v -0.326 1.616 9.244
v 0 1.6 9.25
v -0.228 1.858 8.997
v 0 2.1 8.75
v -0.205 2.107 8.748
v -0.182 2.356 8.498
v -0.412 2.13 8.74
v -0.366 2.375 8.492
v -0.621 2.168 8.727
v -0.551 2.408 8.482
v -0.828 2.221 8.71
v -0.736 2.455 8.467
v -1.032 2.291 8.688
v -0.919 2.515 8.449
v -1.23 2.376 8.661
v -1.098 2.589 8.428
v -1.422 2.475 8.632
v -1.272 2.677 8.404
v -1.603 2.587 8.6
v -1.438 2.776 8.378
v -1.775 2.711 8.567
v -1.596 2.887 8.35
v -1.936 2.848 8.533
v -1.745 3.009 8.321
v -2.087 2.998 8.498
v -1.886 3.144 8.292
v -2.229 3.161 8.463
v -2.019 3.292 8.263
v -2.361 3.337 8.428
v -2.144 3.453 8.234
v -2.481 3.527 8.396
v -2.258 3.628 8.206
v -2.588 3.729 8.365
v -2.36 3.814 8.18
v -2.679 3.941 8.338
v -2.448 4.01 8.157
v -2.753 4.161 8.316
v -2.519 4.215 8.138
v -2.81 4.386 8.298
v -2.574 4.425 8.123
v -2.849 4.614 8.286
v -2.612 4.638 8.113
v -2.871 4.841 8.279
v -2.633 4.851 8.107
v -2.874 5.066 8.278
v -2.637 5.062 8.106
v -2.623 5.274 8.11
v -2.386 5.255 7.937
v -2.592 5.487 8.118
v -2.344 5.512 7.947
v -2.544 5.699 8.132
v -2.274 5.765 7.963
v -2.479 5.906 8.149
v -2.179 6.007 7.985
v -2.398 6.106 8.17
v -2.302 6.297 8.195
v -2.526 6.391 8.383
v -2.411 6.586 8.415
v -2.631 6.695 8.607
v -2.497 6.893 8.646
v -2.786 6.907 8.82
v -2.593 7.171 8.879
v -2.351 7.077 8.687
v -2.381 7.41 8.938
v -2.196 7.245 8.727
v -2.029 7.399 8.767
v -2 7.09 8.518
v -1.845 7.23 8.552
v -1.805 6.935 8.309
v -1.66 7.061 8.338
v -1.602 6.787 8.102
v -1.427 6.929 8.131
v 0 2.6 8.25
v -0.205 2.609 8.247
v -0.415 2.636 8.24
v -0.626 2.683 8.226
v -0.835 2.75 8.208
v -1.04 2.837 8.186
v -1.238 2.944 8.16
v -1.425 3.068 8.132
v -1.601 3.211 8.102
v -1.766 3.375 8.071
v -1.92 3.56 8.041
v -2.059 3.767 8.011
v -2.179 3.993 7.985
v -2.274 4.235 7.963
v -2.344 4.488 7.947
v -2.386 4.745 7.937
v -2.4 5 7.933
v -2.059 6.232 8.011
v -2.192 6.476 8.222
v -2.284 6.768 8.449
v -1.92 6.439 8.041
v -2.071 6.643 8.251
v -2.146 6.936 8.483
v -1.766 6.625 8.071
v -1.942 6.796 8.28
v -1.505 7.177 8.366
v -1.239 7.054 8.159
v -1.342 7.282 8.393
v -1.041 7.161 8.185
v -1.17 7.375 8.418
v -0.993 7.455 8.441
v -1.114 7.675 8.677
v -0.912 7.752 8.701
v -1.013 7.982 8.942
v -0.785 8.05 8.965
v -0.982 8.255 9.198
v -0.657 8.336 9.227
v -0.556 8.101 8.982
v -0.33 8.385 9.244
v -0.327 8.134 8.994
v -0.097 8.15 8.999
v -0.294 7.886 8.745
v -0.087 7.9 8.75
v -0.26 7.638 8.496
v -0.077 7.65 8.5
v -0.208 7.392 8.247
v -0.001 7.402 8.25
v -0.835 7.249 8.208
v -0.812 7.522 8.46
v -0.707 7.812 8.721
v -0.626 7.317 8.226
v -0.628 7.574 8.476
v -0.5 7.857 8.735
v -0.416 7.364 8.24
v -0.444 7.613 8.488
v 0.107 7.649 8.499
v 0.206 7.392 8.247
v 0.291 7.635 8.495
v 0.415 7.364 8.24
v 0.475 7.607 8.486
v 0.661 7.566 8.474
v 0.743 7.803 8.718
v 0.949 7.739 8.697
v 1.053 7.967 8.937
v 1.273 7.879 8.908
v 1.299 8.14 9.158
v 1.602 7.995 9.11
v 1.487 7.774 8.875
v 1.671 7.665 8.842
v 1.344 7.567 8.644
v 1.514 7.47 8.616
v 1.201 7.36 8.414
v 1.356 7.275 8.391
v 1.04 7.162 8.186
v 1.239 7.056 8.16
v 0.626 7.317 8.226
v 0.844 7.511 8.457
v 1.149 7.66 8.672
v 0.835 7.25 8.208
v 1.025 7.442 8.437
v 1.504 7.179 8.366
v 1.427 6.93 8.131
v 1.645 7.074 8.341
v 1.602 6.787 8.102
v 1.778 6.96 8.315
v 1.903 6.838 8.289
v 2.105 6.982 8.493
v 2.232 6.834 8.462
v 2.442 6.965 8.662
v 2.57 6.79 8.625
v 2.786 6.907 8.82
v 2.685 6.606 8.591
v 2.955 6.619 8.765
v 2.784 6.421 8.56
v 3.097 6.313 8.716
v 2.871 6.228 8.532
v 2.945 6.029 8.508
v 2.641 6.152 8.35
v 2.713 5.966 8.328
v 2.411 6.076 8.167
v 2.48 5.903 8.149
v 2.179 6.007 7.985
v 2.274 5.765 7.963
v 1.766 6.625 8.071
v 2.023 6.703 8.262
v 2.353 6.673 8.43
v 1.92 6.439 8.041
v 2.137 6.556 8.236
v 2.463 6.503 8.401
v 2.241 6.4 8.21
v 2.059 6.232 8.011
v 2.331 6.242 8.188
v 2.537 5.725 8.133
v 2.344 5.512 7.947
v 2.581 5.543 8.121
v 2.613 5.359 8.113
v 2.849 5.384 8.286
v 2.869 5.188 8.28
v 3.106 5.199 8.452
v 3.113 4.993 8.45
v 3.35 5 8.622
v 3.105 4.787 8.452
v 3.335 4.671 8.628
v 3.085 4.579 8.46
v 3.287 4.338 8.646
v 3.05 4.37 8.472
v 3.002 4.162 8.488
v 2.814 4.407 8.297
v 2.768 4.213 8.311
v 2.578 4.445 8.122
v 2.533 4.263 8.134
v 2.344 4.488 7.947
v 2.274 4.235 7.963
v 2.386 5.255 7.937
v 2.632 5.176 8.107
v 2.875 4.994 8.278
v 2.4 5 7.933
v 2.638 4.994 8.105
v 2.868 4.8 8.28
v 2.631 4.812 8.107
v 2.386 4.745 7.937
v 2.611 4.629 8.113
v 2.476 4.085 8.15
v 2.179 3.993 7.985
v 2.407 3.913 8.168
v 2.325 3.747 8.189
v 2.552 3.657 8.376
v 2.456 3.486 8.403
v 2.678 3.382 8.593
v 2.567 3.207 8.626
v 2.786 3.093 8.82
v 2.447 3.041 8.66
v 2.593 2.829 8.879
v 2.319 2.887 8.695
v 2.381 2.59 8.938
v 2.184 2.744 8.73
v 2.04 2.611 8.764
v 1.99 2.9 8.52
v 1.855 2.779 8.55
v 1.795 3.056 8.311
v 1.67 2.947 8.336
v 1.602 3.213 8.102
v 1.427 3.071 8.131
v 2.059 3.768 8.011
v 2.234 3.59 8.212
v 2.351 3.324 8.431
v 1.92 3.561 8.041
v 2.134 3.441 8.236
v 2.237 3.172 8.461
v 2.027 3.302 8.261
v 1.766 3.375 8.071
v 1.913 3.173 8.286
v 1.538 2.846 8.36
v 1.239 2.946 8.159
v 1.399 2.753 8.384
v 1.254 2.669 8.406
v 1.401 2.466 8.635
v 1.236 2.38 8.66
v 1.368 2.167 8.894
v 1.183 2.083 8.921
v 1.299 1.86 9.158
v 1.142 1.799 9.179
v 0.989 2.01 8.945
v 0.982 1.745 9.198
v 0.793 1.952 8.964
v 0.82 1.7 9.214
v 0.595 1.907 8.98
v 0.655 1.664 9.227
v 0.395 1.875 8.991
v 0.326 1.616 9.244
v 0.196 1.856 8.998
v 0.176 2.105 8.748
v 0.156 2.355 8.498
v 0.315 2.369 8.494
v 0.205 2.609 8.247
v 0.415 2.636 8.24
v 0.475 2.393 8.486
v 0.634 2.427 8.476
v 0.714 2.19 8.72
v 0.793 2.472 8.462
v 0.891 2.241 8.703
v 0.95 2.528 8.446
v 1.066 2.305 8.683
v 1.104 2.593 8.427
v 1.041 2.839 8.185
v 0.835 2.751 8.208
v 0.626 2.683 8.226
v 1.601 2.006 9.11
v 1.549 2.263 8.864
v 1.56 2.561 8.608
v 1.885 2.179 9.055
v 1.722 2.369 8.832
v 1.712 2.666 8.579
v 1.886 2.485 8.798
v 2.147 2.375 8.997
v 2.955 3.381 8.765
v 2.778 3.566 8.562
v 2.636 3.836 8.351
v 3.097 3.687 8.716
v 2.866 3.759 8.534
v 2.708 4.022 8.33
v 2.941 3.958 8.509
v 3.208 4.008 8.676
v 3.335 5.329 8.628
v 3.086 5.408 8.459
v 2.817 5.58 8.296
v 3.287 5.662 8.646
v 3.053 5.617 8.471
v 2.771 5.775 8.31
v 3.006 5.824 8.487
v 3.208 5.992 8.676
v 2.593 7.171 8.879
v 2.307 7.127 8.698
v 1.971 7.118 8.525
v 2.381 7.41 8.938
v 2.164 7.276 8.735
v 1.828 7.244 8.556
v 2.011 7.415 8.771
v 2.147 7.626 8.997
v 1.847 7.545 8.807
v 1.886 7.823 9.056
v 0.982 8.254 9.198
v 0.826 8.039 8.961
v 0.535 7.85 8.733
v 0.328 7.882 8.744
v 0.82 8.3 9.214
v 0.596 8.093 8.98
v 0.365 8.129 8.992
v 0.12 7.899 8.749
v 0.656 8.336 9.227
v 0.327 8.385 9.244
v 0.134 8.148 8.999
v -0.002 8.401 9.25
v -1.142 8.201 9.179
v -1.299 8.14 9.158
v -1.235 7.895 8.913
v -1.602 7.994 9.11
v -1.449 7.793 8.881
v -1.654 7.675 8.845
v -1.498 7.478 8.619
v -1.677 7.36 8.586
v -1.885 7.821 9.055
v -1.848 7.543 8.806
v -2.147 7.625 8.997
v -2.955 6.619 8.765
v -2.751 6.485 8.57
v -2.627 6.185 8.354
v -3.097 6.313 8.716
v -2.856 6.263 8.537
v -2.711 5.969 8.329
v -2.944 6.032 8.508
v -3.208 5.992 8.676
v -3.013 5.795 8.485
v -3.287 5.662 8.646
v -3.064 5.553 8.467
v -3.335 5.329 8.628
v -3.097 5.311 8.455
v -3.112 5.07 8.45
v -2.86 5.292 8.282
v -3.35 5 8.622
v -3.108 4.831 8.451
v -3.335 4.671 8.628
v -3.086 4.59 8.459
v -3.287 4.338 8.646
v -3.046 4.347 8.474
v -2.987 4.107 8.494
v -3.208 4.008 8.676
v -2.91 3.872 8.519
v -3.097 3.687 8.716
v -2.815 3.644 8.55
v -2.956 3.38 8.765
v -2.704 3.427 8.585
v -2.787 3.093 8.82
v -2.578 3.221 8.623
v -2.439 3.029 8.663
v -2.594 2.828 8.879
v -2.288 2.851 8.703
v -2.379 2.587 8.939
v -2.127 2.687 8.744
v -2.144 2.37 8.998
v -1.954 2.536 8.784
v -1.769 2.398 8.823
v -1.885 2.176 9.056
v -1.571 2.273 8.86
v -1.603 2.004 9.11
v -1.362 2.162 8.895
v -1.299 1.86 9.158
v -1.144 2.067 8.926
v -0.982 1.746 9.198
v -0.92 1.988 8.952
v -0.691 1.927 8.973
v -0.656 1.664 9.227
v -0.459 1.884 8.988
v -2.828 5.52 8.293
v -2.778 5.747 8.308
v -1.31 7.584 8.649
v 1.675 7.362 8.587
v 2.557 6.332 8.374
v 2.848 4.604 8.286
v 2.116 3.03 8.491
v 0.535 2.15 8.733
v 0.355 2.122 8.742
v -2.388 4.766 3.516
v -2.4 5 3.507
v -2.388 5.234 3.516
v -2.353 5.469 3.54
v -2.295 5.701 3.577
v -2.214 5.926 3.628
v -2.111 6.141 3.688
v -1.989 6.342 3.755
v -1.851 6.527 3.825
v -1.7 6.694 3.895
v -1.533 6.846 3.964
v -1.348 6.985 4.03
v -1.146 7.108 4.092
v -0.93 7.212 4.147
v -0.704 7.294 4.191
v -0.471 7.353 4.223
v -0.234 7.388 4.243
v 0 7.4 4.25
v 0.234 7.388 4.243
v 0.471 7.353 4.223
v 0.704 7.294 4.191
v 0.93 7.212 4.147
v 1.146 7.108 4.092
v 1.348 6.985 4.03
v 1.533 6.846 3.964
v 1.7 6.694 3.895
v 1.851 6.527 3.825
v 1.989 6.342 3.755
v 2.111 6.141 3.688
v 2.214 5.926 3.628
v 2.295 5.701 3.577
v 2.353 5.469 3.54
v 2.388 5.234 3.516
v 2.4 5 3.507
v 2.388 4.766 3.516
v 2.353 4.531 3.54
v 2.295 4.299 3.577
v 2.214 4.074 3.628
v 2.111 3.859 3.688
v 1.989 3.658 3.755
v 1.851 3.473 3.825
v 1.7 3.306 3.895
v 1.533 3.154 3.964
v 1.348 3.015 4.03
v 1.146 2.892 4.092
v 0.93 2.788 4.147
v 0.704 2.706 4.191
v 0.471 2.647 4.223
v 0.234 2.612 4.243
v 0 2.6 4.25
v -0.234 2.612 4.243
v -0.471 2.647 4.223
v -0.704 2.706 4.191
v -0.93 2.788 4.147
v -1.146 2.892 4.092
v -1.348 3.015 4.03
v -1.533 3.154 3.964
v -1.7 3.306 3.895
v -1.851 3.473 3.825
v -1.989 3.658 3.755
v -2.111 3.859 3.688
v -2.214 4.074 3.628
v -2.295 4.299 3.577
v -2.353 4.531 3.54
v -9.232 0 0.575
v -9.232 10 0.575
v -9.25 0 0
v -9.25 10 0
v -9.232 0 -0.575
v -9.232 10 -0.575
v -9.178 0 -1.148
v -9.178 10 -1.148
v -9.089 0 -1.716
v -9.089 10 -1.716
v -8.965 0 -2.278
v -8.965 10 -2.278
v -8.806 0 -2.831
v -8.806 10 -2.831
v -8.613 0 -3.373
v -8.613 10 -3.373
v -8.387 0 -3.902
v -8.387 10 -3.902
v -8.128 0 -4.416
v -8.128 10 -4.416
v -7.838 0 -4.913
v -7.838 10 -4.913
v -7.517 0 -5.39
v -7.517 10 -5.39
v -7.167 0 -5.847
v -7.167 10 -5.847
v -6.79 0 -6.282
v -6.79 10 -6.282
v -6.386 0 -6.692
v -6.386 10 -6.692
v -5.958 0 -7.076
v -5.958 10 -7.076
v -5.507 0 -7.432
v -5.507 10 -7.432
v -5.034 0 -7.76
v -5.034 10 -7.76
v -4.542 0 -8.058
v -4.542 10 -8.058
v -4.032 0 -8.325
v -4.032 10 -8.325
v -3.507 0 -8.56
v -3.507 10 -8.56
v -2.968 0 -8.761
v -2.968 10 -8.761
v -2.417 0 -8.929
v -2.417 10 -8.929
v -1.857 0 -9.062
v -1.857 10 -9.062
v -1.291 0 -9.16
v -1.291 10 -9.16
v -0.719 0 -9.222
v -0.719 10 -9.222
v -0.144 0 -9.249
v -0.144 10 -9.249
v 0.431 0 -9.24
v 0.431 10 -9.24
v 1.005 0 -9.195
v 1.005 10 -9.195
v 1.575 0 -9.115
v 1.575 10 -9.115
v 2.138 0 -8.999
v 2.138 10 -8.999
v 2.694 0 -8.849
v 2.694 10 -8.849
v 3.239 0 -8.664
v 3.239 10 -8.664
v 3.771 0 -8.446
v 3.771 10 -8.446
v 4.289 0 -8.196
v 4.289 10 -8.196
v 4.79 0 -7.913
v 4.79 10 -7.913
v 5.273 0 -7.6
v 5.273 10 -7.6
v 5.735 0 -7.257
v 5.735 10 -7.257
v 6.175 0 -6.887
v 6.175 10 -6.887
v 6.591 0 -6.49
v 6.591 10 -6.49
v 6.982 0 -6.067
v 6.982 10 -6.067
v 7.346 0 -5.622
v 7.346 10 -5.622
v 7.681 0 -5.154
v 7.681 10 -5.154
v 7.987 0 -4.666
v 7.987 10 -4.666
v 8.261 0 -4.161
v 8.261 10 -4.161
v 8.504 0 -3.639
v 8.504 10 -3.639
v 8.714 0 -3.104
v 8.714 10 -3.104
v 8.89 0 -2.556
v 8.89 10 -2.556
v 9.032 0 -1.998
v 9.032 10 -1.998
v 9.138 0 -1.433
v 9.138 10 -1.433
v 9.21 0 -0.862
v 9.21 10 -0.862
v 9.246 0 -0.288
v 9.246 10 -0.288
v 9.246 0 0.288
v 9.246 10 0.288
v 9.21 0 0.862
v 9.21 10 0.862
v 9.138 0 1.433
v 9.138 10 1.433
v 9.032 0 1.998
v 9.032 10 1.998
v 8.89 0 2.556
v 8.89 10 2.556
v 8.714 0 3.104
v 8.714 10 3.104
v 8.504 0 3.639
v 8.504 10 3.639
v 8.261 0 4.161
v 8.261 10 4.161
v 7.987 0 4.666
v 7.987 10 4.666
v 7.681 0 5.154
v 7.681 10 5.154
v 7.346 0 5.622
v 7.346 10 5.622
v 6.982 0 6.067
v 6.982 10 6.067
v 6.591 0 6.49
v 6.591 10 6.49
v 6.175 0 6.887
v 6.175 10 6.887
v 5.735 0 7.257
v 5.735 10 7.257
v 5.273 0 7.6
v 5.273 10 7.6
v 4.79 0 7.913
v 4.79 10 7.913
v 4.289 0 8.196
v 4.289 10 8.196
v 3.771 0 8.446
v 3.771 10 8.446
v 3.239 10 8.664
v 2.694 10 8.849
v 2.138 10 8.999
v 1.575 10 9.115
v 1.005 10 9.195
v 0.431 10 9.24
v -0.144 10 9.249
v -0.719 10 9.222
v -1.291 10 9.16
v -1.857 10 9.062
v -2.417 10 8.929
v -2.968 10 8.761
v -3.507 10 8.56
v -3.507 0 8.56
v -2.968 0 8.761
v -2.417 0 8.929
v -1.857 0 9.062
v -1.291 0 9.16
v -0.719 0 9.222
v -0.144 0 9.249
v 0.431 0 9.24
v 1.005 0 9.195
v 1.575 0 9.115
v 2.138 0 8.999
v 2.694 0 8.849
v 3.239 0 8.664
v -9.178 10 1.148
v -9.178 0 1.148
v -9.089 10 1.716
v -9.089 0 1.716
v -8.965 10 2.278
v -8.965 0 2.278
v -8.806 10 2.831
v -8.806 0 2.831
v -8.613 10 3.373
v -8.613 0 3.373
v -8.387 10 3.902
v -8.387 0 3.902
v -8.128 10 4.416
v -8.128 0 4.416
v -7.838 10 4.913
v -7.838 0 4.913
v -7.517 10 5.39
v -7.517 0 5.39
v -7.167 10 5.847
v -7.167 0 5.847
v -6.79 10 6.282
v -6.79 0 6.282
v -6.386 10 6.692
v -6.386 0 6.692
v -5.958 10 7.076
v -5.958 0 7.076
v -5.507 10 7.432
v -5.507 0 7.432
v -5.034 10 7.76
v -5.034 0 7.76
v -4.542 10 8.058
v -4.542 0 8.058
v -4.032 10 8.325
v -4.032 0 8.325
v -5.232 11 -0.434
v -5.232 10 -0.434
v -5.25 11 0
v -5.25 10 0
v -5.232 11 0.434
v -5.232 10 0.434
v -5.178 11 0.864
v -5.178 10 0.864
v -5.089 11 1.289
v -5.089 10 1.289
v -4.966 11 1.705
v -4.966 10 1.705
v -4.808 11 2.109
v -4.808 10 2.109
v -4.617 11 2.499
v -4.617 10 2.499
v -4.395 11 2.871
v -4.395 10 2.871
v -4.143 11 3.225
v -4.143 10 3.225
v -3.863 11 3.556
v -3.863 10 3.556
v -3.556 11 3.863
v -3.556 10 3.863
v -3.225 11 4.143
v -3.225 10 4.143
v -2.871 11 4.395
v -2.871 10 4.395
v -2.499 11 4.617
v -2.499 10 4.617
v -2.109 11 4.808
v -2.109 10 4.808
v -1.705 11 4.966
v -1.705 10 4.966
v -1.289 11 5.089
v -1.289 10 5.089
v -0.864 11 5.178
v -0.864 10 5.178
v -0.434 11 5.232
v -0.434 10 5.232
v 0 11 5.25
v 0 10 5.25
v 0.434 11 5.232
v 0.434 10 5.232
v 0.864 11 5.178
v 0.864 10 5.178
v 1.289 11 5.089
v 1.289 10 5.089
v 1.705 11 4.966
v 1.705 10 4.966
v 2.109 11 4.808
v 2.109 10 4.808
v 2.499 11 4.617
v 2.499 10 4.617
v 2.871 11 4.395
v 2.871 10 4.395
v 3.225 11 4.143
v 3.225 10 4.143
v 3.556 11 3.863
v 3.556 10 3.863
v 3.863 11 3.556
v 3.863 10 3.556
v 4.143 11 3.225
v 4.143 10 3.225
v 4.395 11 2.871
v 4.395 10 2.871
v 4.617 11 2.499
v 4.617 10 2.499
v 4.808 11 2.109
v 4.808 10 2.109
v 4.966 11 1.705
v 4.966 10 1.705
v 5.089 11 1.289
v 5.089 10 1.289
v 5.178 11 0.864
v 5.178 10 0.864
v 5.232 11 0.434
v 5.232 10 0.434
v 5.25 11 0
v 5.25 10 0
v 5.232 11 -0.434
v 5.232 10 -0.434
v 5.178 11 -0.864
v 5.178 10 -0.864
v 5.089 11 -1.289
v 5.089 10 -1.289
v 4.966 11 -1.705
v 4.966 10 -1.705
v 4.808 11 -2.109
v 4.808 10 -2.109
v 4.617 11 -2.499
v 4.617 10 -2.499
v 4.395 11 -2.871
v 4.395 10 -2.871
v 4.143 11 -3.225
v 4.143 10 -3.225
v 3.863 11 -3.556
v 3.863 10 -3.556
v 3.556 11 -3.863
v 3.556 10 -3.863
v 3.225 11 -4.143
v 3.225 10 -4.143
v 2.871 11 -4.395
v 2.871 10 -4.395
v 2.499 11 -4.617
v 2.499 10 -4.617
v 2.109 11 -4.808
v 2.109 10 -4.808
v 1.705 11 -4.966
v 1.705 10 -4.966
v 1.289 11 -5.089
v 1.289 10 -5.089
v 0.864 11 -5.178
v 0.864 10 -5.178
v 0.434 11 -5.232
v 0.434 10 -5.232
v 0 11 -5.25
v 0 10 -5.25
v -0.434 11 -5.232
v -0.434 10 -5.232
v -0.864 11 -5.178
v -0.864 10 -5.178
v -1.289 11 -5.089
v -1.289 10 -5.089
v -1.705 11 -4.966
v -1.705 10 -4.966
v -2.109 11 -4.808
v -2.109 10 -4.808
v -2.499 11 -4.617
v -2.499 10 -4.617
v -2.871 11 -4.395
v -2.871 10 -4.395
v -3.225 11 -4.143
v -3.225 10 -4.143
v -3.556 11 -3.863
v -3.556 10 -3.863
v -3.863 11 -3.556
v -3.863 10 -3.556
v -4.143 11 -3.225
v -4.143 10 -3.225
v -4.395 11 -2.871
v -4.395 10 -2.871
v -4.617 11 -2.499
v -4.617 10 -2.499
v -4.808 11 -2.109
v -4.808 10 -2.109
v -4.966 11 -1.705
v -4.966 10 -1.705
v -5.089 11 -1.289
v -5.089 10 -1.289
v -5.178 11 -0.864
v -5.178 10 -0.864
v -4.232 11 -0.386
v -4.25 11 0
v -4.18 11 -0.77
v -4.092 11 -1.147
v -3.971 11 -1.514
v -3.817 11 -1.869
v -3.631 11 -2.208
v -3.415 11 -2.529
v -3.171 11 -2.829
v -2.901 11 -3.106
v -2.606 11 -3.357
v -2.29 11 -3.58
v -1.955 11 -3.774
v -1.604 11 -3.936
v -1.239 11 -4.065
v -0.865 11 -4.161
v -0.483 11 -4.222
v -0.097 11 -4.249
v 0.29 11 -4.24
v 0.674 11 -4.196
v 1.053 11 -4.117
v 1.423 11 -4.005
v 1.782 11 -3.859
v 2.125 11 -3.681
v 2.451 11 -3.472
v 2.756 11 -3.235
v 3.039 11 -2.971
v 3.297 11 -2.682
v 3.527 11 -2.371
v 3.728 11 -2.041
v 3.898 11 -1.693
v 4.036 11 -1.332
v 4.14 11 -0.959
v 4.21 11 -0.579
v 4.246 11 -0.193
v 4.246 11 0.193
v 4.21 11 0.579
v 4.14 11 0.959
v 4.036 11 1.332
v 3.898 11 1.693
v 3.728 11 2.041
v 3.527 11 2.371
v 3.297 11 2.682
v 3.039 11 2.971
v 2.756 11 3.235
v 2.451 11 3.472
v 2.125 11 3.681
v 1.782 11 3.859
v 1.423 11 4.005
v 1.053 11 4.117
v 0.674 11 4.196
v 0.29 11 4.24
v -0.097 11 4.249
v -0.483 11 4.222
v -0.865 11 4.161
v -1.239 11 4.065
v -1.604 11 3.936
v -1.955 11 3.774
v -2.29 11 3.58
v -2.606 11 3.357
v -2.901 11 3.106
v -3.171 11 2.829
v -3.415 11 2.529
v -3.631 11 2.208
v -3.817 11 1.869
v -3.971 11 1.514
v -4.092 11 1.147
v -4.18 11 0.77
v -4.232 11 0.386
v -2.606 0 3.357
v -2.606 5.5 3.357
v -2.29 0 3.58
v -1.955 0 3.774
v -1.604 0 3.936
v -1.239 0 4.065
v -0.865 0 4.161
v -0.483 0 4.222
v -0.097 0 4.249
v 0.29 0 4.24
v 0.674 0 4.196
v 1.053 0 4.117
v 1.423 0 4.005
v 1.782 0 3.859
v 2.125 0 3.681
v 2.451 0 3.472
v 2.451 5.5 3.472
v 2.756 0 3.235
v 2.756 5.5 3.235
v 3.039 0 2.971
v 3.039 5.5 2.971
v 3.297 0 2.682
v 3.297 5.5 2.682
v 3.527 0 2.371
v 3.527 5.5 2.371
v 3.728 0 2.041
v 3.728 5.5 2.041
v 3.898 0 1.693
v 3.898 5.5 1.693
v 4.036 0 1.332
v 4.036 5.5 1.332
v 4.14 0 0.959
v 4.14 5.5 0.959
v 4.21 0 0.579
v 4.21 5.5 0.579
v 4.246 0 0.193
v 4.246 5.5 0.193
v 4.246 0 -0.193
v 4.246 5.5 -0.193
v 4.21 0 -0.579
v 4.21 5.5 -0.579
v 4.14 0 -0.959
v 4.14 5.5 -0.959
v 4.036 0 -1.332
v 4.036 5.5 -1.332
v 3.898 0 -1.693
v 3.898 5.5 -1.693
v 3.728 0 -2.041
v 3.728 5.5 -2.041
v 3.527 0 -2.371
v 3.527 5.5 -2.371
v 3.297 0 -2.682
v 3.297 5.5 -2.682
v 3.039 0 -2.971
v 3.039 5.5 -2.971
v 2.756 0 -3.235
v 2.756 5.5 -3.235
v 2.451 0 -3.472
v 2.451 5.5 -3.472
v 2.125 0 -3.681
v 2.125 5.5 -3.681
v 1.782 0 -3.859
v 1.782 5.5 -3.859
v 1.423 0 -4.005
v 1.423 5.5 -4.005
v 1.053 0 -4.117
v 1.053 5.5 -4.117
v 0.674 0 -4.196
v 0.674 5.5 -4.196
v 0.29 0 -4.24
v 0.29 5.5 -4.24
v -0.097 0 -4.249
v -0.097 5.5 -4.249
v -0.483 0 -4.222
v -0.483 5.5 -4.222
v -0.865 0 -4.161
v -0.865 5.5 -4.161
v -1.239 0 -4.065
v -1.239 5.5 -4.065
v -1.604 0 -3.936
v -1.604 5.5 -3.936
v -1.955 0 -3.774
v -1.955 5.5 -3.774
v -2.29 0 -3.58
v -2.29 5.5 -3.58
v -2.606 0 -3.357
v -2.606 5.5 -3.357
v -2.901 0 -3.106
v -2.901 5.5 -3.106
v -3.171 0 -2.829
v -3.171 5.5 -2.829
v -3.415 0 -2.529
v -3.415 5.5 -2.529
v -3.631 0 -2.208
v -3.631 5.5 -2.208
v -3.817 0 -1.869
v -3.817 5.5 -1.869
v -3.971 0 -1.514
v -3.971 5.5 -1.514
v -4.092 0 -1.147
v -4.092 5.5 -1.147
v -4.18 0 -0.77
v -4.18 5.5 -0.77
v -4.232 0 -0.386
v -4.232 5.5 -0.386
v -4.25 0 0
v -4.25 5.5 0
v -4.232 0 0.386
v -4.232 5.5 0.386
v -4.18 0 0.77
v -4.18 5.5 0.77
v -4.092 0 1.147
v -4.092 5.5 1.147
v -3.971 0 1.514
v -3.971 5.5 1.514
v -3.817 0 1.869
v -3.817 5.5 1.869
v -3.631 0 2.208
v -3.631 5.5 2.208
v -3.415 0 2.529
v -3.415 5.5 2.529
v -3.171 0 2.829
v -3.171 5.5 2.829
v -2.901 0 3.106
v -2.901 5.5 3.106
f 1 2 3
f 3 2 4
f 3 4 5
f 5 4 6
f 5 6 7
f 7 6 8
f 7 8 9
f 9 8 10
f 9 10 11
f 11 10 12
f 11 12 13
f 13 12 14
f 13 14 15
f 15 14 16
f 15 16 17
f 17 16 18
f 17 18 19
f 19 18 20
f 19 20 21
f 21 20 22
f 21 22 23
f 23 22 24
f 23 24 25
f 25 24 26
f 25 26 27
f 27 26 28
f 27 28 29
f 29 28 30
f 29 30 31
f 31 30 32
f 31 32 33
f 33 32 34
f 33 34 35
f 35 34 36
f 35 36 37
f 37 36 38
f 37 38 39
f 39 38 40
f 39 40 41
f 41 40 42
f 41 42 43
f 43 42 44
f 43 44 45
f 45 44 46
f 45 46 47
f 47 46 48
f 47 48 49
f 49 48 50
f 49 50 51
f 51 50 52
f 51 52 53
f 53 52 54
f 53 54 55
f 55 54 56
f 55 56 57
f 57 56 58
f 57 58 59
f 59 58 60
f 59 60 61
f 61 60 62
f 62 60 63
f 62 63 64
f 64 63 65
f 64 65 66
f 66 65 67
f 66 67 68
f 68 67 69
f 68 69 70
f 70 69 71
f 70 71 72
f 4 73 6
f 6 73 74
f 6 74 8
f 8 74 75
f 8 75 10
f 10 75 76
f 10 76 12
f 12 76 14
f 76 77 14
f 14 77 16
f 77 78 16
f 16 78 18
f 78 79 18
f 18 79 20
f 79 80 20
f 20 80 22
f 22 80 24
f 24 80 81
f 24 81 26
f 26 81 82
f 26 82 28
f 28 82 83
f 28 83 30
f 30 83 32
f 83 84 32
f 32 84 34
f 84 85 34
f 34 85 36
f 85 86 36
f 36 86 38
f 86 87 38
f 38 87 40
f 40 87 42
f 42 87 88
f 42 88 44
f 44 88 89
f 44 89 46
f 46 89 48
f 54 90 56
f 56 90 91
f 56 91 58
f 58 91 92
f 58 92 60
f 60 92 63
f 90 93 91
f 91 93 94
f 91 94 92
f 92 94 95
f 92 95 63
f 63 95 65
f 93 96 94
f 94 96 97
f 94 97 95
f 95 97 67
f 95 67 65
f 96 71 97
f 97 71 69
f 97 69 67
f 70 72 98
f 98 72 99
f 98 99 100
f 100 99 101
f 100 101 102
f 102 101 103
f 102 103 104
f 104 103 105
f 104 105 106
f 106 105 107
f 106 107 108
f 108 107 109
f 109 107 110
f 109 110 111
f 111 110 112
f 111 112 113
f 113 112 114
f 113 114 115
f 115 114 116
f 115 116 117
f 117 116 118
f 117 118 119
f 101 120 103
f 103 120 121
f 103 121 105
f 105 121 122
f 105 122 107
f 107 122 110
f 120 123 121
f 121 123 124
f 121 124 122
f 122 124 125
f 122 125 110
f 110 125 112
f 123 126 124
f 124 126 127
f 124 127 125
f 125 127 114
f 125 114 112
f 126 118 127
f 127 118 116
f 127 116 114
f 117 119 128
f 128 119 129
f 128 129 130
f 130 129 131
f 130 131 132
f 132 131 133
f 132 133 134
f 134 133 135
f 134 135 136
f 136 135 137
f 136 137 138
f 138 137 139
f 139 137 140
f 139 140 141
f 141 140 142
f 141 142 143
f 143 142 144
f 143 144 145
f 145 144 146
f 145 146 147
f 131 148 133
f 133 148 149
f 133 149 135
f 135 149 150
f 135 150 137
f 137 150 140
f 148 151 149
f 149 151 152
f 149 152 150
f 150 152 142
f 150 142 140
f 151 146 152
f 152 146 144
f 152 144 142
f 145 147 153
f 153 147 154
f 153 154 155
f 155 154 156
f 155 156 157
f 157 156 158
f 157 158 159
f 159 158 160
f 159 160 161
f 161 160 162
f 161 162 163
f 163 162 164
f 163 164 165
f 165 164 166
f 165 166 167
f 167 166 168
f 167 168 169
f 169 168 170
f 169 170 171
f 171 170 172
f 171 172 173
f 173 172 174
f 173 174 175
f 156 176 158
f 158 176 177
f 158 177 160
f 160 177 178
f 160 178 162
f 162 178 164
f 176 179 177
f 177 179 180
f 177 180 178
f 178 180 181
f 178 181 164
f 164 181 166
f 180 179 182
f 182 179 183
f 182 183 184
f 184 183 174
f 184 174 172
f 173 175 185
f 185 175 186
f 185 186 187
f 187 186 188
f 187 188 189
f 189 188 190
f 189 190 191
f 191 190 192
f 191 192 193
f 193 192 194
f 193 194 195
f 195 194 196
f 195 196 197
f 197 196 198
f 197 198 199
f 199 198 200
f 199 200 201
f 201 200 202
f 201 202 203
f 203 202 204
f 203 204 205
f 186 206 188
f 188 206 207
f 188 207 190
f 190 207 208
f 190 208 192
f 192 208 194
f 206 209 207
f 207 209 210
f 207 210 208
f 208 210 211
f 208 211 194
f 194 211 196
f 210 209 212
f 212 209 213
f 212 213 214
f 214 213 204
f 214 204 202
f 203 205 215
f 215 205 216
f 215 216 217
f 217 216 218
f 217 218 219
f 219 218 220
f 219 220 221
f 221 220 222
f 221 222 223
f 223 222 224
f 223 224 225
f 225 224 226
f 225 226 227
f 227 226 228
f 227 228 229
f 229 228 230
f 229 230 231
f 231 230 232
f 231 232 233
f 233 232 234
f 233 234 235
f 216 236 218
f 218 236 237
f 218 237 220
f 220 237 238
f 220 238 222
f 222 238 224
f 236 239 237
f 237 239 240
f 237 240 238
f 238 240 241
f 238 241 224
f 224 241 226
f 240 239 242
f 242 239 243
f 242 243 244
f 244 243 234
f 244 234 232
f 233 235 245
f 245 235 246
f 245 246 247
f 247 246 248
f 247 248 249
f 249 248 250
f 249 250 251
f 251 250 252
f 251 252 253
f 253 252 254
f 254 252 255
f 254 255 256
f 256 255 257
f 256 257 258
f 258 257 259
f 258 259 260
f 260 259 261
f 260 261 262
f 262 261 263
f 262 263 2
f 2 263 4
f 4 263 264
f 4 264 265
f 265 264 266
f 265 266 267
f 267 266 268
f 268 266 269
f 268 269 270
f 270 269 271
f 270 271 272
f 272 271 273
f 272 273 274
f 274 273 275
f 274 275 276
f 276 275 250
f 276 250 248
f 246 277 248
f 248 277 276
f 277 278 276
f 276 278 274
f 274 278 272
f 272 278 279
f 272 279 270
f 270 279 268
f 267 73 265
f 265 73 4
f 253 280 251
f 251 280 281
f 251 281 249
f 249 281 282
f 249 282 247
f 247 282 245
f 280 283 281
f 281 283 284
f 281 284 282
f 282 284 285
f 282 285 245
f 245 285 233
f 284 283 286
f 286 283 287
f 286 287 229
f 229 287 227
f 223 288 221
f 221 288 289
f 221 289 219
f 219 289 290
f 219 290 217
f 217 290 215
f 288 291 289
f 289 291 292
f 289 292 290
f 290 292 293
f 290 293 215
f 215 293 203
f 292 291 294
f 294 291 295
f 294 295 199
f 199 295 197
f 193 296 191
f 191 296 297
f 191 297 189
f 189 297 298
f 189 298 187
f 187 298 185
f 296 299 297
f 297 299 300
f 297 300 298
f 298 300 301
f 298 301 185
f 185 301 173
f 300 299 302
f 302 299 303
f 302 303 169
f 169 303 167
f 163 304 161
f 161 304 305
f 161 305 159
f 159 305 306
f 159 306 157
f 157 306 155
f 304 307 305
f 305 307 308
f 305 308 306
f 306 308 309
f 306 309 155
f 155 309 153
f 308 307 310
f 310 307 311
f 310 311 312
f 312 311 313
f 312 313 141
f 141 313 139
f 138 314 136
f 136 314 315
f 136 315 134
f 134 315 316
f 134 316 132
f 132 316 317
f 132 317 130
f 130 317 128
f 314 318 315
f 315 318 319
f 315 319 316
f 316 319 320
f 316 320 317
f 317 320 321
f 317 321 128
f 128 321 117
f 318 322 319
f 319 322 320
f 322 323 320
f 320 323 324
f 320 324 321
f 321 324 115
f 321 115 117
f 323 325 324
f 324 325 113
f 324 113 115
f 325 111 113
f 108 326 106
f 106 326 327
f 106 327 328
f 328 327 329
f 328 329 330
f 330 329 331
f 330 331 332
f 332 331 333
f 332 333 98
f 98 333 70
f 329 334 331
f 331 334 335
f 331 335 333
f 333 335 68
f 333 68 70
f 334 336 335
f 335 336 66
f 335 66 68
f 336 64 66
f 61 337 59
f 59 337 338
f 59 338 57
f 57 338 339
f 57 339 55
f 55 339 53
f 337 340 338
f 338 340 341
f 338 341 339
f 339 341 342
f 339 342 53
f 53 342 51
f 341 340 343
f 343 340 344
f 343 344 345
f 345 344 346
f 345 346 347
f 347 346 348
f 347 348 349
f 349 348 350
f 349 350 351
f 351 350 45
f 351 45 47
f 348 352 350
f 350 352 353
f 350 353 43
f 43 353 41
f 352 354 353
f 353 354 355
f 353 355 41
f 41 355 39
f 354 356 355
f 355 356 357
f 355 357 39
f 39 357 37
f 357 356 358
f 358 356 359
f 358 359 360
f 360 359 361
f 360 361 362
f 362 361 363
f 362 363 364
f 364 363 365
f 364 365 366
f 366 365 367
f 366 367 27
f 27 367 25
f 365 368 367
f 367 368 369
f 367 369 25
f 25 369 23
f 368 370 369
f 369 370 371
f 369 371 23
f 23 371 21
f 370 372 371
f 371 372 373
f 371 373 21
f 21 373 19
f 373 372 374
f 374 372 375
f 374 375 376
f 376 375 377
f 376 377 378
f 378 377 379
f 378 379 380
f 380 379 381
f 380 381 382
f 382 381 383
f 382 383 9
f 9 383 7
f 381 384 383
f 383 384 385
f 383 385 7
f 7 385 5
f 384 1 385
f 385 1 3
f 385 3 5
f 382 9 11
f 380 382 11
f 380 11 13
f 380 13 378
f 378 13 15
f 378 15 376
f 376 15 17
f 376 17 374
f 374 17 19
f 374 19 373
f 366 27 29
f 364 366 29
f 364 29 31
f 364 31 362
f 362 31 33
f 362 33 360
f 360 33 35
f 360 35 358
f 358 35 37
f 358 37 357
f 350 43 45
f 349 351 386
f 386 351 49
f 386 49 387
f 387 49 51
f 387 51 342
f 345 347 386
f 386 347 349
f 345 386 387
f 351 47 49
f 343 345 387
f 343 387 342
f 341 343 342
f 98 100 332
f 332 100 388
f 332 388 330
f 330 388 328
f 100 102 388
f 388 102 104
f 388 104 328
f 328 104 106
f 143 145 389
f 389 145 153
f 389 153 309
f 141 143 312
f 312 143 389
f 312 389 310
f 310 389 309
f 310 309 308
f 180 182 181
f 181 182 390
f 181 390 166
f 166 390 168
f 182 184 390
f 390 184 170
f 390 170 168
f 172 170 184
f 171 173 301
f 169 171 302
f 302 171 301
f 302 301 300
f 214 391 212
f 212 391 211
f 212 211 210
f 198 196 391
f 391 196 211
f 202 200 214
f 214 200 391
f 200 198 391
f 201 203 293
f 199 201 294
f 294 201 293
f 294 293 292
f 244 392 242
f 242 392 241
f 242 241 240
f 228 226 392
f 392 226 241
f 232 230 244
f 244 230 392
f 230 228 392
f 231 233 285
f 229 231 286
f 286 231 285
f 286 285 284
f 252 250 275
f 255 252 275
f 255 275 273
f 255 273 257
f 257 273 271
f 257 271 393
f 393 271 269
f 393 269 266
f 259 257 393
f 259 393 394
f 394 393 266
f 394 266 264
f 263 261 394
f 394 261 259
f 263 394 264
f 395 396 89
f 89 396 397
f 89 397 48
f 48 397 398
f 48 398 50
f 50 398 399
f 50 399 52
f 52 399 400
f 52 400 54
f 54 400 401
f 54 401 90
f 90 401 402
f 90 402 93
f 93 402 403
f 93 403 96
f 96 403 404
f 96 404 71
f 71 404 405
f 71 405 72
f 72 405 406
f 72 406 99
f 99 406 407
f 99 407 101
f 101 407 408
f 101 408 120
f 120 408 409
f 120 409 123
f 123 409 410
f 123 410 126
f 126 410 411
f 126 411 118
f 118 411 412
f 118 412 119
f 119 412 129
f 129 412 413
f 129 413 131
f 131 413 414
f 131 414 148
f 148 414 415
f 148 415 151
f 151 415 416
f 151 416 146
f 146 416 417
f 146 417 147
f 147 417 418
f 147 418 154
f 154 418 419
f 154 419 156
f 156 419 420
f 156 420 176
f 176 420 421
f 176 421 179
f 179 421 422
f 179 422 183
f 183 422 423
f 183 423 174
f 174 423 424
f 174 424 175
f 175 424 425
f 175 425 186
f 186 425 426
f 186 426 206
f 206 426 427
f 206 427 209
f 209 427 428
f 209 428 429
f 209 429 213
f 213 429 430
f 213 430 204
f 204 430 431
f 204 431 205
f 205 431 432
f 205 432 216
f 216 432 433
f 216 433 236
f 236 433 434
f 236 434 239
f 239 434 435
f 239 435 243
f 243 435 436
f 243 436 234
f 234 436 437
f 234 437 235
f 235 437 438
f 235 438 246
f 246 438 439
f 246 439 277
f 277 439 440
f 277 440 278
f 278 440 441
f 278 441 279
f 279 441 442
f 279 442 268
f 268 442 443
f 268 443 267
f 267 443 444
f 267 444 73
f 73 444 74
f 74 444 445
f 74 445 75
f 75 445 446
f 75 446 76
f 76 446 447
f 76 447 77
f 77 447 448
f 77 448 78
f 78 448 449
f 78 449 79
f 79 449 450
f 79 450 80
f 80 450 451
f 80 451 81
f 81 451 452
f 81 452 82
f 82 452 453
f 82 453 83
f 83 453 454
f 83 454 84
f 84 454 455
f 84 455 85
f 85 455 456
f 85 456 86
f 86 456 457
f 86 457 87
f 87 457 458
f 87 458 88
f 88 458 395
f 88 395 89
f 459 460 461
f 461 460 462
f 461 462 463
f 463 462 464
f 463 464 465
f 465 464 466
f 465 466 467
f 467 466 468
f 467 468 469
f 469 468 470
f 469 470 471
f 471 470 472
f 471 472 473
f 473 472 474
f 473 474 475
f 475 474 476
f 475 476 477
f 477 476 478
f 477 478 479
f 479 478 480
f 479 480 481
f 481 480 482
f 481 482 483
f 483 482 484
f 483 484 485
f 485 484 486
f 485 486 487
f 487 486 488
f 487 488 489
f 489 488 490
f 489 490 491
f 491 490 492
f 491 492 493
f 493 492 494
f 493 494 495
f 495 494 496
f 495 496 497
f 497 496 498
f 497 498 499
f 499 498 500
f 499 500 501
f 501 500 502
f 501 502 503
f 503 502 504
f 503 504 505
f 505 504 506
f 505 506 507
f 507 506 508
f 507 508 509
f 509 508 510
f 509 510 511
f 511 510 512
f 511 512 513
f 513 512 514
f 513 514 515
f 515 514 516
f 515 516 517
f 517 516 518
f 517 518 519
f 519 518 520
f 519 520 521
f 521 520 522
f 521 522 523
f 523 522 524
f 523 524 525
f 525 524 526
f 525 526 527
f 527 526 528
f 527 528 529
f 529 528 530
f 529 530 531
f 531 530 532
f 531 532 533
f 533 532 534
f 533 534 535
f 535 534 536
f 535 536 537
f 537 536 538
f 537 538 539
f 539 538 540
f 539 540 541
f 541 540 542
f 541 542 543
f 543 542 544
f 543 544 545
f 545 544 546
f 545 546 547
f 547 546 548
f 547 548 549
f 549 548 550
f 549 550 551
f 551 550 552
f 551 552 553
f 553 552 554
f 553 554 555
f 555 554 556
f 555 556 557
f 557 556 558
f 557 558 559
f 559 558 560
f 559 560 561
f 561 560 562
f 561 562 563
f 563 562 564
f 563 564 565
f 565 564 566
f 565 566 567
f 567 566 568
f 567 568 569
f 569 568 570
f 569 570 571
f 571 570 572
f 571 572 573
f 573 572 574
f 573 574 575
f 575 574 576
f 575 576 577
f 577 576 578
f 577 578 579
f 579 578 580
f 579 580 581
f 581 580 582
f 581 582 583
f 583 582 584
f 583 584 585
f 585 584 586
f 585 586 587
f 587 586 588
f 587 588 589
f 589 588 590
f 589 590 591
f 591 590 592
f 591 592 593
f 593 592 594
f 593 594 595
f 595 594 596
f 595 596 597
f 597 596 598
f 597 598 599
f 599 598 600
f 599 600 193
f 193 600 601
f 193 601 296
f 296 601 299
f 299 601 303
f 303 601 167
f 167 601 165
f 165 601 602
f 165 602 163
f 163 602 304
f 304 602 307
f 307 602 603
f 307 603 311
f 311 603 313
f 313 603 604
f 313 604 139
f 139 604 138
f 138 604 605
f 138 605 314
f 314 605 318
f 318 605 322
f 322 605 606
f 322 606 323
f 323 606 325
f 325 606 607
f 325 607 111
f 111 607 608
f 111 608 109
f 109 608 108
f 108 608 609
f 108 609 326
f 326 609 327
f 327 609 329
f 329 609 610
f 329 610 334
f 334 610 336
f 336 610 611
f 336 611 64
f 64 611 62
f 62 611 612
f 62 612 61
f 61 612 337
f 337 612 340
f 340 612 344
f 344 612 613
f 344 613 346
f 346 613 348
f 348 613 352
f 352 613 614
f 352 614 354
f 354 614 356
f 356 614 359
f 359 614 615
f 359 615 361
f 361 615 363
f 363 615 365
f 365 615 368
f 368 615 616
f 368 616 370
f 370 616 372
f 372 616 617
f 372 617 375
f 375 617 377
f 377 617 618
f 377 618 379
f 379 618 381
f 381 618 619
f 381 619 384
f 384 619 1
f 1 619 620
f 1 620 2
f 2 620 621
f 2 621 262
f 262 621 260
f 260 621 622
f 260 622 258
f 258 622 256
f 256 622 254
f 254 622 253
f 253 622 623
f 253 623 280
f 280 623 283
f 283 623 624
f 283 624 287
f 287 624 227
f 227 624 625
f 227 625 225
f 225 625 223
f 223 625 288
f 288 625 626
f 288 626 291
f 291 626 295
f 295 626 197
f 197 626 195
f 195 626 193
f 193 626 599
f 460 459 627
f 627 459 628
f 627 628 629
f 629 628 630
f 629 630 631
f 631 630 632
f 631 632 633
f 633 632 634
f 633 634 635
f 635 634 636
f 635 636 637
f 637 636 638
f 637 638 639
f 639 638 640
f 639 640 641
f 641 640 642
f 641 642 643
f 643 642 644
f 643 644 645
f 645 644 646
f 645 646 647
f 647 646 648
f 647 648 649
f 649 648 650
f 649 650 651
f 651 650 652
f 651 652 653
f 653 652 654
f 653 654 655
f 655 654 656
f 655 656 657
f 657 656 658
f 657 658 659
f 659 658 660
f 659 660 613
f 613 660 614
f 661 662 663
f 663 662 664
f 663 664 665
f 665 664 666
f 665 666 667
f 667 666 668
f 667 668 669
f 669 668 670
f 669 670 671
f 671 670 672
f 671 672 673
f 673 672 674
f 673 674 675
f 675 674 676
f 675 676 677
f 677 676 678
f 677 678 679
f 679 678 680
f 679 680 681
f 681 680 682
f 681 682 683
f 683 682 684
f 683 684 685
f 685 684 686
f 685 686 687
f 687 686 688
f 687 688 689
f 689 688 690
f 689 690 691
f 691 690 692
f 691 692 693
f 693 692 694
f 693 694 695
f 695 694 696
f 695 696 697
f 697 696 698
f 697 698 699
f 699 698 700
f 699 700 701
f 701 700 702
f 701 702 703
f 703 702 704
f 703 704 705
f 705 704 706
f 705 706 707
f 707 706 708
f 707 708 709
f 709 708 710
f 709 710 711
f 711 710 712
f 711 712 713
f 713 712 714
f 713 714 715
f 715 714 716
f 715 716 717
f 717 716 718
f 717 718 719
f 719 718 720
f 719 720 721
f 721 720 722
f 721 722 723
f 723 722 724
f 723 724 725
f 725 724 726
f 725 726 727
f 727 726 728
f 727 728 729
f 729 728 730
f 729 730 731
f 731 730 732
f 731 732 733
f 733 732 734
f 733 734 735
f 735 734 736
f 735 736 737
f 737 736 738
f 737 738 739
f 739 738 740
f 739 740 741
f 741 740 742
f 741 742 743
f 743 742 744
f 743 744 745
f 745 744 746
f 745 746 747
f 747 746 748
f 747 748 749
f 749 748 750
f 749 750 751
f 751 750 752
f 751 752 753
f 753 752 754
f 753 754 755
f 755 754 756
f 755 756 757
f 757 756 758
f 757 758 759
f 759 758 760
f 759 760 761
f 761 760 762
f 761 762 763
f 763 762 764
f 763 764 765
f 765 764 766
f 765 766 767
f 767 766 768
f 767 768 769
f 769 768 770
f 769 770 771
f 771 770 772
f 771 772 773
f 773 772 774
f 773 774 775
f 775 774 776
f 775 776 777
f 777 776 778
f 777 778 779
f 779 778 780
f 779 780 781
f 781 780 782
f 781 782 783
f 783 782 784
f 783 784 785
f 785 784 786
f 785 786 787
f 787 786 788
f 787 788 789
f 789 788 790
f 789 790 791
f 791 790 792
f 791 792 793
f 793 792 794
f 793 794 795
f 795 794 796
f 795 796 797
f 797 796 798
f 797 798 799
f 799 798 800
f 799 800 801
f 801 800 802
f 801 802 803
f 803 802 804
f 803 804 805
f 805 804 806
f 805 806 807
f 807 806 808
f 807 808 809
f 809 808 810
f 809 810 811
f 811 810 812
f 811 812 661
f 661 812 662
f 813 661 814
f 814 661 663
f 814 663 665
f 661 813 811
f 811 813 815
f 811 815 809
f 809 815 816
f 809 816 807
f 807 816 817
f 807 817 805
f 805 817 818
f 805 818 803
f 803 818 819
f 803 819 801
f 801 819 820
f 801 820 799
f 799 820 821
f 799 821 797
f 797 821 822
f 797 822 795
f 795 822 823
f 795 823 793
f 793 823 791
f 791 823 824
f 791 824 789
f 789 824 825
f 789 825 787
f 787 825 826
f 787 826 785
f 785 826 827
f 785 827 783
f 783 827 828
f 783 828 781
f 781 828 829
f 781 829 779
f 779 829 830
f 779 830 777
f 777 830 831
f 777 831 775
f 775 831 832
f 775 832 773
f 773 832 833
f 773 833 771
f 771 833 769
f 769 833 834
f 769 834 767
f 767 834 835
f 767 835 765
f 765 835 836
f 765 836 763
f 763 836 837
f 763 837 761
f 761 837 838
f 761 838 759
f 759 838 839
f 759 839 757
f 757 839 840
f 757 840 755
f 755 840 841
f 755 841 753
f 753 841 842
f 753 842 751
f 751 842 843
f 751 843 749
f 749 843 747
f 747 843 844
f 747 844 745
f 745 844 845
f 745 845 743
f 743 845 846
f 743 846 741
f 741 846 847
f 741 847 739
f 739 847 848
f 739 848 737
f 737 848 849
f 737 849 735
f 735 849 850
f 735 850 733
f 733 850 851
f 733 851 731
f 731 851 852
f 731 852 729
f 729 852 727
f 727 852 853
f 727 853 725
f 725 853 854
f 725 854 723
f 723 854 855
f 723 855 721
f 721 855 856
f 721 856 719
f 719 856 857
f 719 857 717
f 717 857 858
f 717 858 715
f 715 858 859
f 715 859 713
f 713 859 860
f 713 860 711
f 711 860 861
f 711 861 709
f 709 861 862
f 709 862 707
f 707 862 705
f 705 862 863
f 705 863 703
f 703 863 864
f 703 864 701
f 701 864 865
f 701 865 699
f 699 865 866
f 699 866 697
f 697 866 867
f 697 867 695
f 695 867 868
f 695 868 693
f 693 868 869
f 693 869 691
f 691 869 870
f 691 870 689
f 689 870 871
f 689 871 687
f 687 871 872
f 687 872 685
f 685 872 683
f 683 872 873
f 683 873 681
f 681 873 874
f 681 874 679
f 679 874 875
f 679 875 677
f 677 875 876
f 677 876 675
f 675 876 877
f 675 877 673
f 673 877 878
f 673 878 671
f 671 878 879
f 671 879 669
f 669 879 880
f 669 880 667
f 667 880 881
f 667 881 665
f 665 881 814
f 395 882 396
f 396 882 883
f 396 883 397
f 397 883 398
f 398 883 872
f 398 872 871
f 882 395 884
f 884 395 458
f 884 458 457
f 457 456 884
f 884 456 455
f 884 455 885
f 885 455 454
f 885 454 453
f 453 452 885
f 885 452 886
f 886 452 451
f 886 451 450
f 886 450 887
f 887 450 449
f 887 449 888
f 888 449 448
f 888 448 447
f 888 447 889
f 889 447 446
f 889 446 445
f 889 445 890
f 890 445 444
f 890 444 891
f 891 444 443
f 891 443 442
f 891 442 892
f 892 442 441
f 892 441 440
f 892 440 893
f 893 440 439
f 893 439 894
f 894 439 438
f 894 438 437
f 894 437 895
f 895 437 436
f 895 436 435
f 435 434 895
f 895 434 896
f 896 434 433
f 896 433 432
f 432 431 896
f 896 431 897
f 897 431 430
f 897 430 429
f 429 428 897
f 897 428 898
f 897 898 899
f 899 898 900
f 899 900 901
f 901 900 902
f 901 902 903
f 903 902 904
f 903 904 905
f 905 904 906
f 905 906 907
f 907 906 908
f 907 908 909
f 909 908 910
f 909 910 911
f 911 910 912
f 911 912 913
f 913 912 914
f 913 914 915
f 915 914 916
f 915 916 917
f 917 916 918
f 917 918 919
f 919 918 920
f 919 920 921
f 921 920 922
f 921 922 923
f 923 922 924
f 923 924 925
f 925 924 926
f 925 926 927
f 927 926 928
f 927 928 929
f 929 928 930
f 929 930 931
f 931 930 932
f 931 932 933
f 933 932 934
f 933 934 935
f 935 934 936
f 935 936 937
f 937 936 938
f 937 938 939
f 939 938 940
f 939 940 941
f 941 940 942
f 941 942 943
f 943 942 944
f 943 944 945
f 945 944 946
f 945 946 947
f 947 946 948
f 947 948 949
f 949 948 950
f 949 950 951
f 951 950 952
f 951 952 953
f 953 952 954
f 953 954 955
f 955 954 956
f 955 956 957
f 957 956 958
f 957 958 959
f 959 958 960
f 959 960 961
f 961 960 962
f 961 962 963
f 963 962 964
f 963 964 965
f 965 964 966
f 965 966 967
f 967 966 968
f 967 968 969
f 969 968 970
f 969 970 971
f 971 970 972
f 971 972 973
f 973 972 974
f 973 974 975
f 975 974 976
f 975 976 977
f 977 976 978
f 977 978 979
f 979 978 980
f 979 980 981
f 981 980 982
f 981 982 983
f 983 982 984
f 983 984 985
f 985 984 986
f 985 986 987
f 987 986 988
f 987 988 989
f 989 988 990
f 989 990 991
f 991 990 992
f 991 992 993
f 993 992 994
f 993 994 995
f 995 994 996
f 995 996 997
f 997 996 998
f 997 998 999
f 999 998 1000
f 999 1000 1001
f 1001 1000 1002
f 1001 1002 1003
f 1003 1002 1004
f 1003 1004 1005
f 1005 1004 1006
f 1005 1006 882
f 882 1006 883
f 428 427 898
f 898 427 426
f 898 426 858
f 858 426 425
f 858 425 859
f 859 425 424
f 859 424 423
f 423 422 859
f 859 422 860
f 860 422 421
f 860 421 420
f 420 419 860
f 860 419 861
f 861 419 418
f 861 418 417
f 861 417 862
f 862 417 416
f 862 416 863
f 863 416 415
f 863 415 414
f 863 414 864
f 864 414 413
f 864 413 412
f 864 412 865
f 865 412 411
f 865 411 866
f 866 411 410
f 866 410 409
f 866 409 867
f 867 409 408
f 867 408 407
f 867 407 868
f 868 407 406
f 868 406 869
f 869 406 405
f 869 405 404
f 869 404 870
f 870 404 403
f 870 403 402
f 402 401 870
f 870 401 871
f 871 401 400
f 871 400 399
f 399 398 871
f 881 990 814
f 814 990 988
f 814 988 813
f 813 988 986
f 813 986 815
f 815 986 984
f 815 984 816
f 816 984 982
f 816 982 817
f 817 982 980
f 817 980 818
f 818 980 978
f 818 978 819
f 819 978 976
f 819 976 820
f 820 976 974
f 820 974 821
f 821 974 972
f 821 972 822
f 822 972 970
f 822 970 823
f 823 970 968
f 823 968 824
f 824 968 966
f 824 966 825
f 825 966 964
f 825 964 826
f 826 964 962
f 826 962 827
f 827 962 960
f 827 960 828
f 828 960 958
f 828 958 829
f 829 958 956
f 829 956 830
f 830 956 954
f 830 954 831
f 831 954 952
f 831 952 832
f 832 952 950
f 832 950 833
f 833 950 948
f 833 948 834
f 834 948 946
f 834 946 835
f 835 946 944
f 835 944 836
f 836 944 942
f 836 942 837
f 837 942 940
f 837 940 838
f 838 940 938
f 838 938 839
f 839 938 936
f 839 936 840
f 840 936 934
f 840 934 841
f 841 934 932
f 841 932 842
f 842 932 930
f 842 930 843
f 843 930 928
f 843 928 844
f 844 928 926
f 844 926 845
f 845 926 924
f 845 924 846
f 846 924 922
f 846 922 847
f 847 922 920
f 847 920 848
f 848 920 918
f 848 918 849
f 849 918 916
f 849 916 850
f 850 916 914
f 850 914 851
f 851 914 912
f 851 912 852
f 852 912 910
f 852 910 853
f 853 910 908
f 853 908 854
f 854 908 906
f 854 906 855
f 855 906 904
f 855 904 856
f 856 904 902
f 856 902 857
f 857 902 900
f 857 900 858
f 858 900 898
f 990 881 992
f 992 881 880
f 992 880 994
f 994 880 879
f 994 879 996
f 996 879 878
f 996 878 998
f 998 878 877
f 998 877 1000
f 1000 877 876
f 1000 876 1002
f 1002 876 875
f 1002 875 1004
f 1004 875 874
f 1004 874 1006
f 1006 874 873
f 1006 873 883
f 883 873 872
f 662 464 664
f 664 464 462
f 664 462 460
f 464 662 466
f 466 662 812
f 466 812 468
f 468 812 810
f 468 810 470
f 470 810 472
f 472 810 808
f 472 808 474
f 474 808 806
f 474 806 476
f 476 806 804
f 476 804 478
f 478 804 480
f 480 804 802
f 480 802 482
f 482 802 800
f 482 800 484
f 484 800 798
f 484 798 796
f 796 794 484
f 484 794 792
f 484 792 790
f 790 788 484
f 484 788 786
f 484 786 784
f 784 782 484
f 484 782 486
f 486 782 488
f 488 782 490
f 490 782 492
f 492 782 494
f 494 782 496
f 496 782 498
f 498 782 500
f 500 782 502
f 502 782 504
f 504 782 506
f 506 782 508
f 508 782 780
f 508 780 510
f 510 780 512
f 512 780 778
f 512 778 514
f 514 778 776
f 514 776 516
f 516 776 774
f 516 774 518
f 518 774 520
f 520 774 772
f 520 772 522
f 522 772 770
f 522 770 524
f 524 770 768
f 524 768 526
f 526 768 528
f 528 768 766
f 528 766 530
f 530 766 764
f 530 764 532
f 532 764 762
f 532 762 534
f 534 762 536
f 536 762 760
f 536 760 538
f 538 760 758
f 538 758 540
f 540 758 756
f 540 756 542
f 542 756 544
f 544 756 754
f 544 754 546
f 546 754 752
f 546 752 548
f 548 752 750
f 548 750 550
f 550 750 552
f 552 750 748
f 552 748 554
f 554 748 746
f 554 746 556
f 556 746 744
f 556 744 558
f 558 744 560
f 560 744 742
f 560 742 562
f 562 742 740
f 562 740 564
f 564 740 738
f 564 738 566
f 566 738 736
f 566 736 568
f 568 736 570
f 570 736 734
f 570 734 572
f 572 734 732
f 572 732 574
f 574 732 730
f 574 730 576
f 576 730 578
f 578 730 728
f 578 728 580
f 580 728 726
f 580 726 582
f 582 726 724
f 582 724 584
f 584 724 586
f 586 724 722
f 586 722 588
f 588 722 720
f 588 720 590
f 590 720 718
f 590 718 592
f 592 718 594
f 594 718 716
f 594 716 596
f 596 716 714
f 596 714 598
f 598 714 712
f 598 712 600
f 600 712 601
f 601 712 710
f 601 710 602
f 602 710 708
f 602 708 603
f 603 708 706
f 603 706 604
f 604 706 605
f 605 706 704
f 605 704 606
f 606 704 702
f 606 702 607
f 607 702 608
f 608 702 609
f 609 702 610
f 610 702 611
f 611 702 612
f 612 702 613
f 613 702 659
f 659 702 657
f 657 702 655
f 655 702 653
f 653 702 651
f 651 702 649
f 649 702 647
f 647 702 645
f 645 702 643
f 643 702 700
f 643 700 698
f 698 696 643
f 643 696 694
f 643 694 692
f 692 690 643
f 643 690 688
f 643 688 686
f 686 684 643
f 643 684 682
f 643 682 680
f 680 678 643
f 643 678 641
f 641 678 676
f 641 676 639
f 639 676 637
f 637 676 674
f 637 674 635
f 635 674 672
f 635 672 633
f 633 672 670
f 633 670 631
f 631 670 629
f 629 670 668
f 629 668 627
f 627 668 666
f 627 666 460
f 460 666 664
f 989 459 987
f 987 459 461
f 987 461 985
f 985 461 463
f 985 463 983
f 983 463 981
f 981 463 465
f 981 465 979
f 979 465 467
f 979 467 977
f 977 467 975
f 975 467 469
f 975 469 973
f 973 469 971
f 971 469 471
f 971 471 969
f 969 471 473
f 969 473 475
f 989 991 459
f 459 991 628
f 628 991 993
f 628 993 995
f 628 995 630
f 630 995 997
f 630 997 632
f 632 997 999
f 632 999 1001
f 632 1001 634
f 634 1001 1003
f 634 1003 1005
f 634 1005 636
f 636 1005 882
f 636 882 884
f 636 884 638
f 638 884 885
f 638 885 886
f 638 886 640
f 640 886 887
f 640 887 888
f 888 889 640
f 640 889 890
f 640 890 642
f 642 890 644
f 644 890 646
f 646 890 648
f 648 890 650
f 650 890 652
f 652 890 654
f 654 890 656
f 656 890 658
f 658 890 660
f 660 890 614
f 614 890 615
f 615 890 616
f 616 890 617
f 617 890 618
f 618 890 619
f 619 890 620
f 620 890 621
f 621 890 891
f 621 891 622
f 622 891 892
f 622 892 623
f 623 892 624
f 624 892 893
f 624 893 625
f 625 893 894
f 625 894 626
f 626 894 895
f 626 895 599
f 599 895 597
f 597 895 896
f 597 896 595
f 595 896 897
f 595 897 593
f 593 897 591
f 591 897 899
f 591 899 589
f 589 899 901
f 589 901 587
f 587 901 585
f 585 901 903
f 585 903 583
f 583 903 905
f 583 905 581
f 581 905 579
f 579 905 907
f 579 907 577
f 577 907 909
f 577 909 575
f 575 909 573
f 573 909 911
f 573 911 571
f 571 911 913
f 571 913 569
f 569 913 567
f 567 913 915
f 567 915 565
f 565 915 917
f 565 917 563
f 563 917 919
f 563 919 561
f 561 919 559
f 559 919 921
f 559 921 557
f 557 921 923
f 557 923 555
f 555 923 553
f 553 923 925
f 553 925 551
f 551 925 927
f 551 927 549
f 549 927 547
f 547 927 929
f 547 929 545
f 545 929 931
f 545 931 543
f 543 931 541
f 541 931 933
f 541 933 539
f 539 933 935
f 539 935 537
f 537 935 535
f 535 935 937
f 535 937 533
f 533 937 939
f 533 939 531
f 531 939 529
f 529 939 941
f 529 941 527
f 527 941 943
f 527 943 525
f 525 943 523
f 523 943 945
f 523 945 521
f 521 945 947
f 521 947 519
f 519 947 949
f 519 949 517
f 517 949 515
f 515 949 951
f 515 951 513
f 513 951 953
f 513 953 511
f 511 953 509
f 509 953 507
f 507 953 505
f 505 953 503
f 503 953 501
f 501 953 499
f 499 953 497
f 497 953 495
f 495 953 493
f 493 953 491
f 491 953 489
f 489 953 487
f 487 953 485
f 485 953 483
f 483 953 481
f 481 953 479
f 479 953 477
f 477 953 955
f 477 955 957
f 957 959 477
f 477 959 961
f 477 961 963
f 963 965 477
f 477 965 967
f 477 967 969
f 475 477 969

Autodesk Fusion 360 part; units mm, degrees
sketch "Esquisse1" plane through (0, 0, 0) normal (0, 1, 0) x (1, 0, 0)
  circle A0 centre (0, 0) radius 4.25
  circle A1 centre (0, 0) radius 9.25
  circle A2 centre (0, 0) radius 5.25
  dimension "d6" = 8.5
  dimension "d7" = 5
  dimension "d19" = 1
extrude "Extrusion1" add sketch "Esquisse1" along normal blind 10 contours A1 | A2
extrude "Extrusion3" add sketch "Esquisse1" along normal blind 11 contours A2
ref_plane "Plan de construction1" through (0, 6.1987, 9.25) normal (0, 0, 1) x (-1, 0, 0)
sketch "Esquisse2" plane through (0, 6.0312, 9.25) normal (0, 0, 1) x (1, 0, 0)
  line L0 (9.25, 3.9688) -> (-9.25, 3.9688)
  line L1 (9.25, -6.0312) -> (-9.25, -6.0312)
  line L2 (-9.25, 3.9688) -> (9.25, -6.0312) construction
  circle A0 centre (0, -1.0312) radius 2.4
  dimension "d11" = 4.8
extrude "Extrusion2" cut sketch "Esquisse2" against normal blind 9.3
chamfer "Chanfrein1" distance 1 angle 45 2 edges at (2.4, 5, 8.9332) (-2.4, 5, 8.9332)
equation "inner_diam = 8 mm"
equation "insert_len = 4 mm"
equation "margin = 1 mm"
equation "depth = 10 mm"
equation "insert_od = 4.8 mm"
equation "d6 = inner_diam + shaft_tolerance"
equation "d7 = margin + insert_len"
equation "d8 = depth"
equation "d11 = insert_od"
equation "chamfrein = 1 mm"
equation "d13 = -( inner_diam + insert_od * 2 + margin ) / 2"
equation "d15 = chamfrein"
equation "shaft_tolerance = 0.5 mm"
equation "bearing_inner_ring = 1 mm"
equation "spacer_depth = 1 mm"
equation "d19 = bearing_inner_ring"
equation "d20 = depth + spacer_depth"
equation "hex_diam = 24.5 mm"
equation "hex_depth = 8 mm"
equation "wall = 2 mm"
